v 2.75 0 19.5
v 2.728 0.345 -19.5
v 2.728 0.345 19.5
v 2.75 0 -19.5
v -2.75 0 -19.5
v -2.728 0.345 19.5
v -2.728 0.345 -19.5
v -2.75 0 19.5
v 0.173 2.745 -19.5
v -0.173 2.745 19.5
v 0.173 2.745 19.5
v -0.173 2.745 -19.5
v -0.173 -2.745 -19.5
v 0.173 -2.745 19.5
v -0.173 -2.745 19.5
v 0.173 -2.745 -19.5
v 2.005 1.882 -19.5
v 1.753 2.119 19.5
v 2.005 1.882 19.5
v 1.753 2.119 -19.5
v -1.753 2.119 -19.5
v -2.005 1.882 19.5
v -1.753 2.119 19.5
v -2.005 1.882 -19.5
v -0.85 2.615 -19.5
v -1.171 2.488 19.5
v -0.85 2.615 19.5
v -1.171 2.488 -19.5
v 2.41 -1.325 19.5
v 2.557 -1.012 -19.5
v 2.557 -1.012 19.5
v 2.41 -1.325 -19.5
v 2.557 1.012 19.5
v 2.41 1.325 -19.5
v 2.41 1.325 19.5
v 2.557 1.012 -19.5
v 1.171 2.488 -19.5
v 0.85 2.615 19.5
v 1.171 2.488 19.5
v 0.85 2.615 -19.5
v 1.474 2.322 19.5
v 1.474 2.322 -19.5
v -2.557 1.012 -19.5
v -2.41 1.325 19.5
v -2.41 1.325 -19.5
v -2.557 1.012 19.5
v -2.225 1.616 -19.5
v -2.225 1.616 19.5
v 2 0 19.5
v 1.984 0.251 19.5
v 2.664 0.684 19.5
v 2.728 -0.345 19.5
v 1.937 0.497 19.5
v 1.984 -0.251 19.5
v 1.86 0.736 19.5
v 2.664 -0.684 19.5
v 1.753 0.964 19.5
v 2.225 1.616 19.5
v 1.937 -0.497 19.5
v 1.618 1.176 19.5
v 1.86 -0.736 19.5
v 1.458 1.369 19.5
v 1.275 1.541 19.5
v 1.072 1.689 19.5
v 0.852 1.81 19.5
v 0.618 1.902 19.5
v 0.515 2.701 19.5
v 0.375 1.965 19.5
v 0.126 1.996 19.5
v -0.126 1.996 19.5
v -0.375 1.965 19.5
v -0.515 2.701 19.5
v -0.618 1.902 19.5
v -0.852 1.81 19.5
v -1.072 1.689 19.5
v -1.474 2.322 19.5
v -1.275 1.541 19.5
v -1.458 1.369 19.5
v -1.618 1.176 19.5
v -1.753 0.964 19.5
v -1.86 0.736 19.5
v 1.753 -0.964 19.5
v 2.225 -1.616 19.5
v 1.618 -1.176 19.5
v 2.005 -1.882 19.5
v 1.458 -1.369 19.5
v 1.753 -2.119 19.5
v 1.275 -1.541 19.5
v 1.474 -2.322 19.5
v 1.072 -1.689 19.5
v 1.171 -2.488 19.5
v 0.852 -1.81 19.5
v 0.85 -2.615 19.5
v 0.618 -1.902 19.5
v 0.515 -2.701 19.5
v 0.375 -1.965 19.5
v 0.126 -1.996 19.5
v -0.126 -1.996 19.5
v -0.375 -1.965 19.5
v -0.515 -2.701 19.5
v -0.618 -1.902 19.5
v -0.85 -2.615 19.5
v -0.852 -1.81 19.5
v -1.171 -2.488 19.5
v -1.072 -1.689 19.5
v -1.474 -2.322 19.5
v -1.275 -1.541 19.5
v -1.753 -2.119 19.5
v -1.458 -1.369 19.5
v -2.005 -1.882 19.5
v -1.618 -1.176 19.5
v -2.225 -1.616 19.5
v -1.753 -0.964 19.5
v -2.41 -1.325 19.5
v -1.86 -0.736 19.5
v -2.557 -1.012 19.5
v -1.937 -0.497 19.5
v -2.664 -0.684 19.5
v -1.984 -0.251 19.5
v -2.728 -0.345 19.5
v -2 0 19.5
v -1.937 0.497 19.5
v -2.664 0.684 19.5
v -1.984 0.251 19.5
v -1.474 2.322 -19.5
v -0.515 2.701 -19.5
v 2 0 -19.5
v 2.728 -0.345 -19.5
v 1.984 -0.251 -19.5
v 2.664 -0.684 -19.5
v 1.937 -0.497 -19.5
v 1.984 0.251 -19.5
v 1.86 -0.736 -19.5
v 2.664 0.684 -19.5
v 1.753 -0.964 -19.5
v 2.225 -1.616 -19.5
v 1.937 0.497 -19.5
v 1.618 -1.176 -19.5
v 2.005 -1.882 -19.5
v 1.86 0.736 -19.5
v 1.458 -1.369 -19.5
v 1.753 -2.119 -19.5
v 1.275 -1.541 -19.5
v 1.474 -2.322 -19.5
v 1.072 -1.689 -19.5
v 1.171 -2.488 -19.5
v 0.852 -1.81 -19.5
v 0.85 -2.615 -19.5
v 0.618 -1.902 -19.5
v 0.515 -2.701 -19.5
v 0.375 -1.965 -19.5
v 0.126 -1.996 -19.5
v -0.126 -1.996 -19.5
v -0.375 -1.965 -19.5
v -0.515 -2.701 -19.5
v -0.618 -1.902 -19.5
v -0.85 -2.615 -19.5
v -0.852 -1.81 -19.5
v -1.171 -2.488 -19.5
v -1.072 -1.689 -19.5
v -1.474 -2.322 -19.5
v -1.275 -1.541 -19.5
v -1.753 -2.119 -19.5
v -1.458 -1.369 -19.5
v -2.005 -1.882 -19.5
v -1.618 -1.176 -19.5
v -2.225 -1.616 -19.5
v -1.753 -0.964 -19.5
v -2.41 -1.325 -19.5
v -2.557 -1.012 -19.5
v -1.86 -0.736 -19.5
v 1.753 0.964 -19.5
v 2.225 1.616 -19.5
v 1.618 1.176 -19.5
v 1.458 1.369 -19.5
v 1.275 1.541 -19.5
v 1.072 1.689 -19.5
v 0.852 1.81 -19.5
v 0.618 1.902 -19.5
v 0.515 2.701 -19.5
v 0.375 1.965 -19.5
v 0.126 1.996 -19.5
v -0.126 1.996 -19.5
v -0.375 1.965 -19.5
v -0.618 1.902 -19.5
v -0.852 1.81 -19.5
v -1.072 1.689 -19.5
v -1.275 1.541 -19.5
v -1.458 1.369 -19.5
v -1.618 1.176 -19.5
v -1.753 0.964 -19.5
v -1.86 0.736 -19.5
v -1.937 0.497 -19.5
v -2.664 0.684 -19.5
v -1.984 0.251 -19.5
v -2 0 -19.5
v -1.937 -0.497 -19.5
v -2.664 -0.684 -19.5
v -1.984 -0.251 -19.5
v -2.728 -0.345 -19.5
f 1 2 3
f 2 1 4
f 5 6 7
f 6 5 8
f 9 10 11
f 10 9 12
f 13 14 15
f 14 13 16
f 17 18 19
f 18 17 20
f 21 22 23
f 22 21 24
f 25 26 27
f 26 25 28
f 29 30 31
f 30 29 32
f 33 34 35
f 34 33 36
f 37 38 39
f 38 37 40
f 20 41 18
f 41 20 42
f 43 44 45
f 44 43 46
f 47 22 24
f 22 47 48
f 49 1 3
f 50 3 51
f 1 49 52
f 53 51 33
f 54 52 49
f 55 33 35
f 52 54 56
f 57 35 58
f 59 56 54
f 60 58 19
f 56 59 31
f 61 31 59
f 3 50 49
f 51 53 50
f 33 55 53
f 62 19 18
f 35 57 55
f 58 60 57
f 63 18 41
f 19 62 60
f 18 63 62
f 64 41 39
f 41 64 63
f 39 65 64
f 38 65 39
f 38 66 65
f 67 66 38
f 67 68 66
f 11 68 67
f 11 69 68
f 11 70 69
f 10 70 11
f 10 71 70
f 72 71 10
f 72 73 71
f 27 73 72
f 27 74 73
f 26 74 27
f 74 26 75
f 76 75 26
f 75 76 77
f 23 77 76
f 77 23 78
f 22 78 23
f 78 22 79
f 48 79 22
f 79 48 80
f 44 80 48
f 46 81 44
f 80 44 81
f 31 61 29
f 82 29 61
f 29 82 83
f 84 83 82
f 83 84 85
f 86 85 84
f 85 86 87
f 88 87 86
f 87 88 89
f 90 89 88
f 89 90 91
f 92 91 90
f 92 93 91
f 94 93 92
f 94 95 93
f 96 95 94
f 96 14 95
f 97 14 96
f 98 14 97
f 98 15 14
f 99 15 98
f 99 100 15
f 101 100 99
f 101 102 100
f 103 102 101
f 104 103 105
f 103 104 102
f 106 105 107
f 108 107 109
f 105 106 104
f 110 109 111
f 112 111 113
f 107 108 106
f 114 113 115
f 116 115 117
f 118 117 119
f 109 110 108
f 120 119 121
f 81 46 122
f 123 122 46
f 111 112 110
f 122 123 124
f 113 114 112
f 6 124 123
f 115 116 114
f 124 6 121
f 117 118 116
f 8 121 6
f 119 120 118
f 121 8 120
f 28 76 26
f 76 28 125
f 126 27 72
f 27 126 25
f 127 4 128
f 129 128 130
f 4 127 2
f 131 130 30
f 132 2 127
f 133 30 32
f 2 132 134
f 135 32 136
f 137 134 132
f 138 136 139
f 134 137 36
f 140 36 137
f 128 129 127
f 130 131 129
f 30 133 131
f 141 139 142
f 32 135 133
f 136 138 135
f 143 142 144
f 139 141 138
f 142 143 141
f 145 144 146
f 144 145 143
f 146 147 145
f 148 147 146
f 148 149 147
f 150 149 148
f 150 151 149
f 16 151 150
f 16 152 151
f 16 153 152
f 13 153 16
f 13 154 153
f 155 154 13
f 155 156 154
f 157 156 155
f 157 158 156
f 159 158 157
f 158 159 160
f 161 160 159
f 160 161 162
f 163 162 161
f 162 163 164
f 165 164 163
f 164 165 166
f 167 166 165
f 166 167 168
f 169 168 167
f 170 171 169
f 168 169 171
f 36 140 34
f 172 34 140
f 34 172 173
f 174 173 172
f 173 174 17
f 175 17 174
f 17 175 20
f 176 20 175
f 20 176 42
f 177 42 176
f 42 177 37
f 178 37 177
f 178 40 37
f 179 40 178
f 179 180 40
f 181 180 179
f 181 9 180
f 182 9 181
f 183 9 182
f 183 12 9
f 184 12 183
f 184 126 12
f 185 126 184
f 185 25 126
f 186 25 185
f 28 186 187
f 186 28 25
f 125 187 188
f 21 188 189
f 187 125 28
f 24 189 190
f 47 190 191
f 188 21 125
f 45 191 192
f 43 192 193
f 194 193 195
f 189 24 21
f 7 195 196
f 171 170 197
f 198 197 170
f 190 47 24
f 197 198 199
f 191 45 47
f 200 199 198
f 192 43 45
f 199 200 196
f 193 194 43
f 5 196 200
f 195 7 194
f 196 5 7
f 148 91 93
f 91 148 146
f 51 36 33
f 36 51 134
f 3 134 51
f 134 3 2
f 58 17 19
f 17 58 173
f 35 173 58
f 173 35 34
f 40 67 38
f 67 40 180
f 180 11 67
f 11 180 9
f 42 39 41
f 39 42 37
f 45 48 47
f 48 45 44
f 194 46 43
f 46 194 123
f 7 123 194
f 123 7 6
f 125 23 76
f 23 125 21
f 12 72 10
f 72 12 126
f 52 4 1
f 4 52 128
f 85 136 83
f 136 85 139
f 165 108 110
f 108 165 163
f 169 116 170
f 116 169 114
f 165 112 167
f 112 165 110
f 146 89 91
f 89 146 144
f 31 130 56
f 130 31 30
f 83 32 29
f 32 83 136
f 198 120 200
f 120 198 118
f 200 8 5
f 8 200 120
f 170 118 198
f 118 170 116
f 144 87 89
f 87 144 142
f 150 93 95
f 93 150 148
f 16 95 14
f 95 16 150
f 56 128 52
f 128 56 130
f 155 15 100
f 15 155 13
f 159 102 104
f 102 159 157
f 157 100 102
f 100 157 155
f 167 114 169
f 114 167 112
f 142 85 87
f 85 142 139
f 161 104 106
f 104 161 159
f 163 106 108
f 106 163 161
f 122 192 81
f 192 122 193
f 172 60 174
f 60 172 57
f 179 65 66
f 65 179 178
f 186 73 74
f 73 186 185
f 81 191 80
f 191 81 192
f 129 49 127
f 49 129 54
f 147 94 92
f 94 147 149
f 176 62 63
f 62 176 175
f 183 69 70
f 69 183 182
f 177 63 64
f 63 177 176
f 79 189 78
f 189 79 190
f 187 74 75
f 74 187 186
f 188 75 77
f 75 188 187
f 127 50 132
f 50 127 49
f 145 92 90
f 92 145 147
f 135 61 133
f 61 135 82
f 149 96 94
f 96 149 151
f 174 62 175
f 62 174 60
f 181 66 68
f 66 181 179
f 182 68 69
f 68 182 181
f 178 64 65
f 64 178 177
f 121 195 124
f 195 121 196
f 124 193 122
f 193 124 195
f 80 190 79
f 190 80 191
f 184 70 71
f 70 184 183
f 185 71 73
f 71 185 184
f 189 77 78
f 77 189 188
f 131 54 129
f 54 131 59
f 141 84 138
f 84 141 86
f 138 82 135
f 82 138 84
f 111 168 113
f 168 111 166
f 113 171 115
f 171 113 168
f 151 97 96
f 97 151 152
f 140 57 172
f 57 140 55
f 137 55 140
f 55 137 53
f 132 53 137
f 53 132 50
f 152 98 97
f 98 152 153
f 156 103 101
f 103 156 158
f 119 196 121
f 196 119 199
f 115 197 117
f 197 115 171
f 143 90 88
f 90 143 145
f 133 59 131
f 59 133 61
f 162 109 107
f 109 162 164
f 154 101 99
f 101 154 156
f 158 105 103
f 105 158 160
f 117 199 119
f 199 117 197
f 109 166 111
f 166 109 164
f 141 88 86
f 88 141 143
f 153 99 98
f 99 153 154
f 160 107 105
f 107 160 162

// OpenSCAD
$fn = 50;


difference() {
	union() {
		translate(v = [0, 0, -19.5000000000]) {
			cylinder(h = 39, r = 2.7500000000);
		}
	}
	union() {
		translate(v = [0, 0, -100.0000000000]) {
			cylinder(h = 200, r = 2.0000000000);
		}
	}
}
